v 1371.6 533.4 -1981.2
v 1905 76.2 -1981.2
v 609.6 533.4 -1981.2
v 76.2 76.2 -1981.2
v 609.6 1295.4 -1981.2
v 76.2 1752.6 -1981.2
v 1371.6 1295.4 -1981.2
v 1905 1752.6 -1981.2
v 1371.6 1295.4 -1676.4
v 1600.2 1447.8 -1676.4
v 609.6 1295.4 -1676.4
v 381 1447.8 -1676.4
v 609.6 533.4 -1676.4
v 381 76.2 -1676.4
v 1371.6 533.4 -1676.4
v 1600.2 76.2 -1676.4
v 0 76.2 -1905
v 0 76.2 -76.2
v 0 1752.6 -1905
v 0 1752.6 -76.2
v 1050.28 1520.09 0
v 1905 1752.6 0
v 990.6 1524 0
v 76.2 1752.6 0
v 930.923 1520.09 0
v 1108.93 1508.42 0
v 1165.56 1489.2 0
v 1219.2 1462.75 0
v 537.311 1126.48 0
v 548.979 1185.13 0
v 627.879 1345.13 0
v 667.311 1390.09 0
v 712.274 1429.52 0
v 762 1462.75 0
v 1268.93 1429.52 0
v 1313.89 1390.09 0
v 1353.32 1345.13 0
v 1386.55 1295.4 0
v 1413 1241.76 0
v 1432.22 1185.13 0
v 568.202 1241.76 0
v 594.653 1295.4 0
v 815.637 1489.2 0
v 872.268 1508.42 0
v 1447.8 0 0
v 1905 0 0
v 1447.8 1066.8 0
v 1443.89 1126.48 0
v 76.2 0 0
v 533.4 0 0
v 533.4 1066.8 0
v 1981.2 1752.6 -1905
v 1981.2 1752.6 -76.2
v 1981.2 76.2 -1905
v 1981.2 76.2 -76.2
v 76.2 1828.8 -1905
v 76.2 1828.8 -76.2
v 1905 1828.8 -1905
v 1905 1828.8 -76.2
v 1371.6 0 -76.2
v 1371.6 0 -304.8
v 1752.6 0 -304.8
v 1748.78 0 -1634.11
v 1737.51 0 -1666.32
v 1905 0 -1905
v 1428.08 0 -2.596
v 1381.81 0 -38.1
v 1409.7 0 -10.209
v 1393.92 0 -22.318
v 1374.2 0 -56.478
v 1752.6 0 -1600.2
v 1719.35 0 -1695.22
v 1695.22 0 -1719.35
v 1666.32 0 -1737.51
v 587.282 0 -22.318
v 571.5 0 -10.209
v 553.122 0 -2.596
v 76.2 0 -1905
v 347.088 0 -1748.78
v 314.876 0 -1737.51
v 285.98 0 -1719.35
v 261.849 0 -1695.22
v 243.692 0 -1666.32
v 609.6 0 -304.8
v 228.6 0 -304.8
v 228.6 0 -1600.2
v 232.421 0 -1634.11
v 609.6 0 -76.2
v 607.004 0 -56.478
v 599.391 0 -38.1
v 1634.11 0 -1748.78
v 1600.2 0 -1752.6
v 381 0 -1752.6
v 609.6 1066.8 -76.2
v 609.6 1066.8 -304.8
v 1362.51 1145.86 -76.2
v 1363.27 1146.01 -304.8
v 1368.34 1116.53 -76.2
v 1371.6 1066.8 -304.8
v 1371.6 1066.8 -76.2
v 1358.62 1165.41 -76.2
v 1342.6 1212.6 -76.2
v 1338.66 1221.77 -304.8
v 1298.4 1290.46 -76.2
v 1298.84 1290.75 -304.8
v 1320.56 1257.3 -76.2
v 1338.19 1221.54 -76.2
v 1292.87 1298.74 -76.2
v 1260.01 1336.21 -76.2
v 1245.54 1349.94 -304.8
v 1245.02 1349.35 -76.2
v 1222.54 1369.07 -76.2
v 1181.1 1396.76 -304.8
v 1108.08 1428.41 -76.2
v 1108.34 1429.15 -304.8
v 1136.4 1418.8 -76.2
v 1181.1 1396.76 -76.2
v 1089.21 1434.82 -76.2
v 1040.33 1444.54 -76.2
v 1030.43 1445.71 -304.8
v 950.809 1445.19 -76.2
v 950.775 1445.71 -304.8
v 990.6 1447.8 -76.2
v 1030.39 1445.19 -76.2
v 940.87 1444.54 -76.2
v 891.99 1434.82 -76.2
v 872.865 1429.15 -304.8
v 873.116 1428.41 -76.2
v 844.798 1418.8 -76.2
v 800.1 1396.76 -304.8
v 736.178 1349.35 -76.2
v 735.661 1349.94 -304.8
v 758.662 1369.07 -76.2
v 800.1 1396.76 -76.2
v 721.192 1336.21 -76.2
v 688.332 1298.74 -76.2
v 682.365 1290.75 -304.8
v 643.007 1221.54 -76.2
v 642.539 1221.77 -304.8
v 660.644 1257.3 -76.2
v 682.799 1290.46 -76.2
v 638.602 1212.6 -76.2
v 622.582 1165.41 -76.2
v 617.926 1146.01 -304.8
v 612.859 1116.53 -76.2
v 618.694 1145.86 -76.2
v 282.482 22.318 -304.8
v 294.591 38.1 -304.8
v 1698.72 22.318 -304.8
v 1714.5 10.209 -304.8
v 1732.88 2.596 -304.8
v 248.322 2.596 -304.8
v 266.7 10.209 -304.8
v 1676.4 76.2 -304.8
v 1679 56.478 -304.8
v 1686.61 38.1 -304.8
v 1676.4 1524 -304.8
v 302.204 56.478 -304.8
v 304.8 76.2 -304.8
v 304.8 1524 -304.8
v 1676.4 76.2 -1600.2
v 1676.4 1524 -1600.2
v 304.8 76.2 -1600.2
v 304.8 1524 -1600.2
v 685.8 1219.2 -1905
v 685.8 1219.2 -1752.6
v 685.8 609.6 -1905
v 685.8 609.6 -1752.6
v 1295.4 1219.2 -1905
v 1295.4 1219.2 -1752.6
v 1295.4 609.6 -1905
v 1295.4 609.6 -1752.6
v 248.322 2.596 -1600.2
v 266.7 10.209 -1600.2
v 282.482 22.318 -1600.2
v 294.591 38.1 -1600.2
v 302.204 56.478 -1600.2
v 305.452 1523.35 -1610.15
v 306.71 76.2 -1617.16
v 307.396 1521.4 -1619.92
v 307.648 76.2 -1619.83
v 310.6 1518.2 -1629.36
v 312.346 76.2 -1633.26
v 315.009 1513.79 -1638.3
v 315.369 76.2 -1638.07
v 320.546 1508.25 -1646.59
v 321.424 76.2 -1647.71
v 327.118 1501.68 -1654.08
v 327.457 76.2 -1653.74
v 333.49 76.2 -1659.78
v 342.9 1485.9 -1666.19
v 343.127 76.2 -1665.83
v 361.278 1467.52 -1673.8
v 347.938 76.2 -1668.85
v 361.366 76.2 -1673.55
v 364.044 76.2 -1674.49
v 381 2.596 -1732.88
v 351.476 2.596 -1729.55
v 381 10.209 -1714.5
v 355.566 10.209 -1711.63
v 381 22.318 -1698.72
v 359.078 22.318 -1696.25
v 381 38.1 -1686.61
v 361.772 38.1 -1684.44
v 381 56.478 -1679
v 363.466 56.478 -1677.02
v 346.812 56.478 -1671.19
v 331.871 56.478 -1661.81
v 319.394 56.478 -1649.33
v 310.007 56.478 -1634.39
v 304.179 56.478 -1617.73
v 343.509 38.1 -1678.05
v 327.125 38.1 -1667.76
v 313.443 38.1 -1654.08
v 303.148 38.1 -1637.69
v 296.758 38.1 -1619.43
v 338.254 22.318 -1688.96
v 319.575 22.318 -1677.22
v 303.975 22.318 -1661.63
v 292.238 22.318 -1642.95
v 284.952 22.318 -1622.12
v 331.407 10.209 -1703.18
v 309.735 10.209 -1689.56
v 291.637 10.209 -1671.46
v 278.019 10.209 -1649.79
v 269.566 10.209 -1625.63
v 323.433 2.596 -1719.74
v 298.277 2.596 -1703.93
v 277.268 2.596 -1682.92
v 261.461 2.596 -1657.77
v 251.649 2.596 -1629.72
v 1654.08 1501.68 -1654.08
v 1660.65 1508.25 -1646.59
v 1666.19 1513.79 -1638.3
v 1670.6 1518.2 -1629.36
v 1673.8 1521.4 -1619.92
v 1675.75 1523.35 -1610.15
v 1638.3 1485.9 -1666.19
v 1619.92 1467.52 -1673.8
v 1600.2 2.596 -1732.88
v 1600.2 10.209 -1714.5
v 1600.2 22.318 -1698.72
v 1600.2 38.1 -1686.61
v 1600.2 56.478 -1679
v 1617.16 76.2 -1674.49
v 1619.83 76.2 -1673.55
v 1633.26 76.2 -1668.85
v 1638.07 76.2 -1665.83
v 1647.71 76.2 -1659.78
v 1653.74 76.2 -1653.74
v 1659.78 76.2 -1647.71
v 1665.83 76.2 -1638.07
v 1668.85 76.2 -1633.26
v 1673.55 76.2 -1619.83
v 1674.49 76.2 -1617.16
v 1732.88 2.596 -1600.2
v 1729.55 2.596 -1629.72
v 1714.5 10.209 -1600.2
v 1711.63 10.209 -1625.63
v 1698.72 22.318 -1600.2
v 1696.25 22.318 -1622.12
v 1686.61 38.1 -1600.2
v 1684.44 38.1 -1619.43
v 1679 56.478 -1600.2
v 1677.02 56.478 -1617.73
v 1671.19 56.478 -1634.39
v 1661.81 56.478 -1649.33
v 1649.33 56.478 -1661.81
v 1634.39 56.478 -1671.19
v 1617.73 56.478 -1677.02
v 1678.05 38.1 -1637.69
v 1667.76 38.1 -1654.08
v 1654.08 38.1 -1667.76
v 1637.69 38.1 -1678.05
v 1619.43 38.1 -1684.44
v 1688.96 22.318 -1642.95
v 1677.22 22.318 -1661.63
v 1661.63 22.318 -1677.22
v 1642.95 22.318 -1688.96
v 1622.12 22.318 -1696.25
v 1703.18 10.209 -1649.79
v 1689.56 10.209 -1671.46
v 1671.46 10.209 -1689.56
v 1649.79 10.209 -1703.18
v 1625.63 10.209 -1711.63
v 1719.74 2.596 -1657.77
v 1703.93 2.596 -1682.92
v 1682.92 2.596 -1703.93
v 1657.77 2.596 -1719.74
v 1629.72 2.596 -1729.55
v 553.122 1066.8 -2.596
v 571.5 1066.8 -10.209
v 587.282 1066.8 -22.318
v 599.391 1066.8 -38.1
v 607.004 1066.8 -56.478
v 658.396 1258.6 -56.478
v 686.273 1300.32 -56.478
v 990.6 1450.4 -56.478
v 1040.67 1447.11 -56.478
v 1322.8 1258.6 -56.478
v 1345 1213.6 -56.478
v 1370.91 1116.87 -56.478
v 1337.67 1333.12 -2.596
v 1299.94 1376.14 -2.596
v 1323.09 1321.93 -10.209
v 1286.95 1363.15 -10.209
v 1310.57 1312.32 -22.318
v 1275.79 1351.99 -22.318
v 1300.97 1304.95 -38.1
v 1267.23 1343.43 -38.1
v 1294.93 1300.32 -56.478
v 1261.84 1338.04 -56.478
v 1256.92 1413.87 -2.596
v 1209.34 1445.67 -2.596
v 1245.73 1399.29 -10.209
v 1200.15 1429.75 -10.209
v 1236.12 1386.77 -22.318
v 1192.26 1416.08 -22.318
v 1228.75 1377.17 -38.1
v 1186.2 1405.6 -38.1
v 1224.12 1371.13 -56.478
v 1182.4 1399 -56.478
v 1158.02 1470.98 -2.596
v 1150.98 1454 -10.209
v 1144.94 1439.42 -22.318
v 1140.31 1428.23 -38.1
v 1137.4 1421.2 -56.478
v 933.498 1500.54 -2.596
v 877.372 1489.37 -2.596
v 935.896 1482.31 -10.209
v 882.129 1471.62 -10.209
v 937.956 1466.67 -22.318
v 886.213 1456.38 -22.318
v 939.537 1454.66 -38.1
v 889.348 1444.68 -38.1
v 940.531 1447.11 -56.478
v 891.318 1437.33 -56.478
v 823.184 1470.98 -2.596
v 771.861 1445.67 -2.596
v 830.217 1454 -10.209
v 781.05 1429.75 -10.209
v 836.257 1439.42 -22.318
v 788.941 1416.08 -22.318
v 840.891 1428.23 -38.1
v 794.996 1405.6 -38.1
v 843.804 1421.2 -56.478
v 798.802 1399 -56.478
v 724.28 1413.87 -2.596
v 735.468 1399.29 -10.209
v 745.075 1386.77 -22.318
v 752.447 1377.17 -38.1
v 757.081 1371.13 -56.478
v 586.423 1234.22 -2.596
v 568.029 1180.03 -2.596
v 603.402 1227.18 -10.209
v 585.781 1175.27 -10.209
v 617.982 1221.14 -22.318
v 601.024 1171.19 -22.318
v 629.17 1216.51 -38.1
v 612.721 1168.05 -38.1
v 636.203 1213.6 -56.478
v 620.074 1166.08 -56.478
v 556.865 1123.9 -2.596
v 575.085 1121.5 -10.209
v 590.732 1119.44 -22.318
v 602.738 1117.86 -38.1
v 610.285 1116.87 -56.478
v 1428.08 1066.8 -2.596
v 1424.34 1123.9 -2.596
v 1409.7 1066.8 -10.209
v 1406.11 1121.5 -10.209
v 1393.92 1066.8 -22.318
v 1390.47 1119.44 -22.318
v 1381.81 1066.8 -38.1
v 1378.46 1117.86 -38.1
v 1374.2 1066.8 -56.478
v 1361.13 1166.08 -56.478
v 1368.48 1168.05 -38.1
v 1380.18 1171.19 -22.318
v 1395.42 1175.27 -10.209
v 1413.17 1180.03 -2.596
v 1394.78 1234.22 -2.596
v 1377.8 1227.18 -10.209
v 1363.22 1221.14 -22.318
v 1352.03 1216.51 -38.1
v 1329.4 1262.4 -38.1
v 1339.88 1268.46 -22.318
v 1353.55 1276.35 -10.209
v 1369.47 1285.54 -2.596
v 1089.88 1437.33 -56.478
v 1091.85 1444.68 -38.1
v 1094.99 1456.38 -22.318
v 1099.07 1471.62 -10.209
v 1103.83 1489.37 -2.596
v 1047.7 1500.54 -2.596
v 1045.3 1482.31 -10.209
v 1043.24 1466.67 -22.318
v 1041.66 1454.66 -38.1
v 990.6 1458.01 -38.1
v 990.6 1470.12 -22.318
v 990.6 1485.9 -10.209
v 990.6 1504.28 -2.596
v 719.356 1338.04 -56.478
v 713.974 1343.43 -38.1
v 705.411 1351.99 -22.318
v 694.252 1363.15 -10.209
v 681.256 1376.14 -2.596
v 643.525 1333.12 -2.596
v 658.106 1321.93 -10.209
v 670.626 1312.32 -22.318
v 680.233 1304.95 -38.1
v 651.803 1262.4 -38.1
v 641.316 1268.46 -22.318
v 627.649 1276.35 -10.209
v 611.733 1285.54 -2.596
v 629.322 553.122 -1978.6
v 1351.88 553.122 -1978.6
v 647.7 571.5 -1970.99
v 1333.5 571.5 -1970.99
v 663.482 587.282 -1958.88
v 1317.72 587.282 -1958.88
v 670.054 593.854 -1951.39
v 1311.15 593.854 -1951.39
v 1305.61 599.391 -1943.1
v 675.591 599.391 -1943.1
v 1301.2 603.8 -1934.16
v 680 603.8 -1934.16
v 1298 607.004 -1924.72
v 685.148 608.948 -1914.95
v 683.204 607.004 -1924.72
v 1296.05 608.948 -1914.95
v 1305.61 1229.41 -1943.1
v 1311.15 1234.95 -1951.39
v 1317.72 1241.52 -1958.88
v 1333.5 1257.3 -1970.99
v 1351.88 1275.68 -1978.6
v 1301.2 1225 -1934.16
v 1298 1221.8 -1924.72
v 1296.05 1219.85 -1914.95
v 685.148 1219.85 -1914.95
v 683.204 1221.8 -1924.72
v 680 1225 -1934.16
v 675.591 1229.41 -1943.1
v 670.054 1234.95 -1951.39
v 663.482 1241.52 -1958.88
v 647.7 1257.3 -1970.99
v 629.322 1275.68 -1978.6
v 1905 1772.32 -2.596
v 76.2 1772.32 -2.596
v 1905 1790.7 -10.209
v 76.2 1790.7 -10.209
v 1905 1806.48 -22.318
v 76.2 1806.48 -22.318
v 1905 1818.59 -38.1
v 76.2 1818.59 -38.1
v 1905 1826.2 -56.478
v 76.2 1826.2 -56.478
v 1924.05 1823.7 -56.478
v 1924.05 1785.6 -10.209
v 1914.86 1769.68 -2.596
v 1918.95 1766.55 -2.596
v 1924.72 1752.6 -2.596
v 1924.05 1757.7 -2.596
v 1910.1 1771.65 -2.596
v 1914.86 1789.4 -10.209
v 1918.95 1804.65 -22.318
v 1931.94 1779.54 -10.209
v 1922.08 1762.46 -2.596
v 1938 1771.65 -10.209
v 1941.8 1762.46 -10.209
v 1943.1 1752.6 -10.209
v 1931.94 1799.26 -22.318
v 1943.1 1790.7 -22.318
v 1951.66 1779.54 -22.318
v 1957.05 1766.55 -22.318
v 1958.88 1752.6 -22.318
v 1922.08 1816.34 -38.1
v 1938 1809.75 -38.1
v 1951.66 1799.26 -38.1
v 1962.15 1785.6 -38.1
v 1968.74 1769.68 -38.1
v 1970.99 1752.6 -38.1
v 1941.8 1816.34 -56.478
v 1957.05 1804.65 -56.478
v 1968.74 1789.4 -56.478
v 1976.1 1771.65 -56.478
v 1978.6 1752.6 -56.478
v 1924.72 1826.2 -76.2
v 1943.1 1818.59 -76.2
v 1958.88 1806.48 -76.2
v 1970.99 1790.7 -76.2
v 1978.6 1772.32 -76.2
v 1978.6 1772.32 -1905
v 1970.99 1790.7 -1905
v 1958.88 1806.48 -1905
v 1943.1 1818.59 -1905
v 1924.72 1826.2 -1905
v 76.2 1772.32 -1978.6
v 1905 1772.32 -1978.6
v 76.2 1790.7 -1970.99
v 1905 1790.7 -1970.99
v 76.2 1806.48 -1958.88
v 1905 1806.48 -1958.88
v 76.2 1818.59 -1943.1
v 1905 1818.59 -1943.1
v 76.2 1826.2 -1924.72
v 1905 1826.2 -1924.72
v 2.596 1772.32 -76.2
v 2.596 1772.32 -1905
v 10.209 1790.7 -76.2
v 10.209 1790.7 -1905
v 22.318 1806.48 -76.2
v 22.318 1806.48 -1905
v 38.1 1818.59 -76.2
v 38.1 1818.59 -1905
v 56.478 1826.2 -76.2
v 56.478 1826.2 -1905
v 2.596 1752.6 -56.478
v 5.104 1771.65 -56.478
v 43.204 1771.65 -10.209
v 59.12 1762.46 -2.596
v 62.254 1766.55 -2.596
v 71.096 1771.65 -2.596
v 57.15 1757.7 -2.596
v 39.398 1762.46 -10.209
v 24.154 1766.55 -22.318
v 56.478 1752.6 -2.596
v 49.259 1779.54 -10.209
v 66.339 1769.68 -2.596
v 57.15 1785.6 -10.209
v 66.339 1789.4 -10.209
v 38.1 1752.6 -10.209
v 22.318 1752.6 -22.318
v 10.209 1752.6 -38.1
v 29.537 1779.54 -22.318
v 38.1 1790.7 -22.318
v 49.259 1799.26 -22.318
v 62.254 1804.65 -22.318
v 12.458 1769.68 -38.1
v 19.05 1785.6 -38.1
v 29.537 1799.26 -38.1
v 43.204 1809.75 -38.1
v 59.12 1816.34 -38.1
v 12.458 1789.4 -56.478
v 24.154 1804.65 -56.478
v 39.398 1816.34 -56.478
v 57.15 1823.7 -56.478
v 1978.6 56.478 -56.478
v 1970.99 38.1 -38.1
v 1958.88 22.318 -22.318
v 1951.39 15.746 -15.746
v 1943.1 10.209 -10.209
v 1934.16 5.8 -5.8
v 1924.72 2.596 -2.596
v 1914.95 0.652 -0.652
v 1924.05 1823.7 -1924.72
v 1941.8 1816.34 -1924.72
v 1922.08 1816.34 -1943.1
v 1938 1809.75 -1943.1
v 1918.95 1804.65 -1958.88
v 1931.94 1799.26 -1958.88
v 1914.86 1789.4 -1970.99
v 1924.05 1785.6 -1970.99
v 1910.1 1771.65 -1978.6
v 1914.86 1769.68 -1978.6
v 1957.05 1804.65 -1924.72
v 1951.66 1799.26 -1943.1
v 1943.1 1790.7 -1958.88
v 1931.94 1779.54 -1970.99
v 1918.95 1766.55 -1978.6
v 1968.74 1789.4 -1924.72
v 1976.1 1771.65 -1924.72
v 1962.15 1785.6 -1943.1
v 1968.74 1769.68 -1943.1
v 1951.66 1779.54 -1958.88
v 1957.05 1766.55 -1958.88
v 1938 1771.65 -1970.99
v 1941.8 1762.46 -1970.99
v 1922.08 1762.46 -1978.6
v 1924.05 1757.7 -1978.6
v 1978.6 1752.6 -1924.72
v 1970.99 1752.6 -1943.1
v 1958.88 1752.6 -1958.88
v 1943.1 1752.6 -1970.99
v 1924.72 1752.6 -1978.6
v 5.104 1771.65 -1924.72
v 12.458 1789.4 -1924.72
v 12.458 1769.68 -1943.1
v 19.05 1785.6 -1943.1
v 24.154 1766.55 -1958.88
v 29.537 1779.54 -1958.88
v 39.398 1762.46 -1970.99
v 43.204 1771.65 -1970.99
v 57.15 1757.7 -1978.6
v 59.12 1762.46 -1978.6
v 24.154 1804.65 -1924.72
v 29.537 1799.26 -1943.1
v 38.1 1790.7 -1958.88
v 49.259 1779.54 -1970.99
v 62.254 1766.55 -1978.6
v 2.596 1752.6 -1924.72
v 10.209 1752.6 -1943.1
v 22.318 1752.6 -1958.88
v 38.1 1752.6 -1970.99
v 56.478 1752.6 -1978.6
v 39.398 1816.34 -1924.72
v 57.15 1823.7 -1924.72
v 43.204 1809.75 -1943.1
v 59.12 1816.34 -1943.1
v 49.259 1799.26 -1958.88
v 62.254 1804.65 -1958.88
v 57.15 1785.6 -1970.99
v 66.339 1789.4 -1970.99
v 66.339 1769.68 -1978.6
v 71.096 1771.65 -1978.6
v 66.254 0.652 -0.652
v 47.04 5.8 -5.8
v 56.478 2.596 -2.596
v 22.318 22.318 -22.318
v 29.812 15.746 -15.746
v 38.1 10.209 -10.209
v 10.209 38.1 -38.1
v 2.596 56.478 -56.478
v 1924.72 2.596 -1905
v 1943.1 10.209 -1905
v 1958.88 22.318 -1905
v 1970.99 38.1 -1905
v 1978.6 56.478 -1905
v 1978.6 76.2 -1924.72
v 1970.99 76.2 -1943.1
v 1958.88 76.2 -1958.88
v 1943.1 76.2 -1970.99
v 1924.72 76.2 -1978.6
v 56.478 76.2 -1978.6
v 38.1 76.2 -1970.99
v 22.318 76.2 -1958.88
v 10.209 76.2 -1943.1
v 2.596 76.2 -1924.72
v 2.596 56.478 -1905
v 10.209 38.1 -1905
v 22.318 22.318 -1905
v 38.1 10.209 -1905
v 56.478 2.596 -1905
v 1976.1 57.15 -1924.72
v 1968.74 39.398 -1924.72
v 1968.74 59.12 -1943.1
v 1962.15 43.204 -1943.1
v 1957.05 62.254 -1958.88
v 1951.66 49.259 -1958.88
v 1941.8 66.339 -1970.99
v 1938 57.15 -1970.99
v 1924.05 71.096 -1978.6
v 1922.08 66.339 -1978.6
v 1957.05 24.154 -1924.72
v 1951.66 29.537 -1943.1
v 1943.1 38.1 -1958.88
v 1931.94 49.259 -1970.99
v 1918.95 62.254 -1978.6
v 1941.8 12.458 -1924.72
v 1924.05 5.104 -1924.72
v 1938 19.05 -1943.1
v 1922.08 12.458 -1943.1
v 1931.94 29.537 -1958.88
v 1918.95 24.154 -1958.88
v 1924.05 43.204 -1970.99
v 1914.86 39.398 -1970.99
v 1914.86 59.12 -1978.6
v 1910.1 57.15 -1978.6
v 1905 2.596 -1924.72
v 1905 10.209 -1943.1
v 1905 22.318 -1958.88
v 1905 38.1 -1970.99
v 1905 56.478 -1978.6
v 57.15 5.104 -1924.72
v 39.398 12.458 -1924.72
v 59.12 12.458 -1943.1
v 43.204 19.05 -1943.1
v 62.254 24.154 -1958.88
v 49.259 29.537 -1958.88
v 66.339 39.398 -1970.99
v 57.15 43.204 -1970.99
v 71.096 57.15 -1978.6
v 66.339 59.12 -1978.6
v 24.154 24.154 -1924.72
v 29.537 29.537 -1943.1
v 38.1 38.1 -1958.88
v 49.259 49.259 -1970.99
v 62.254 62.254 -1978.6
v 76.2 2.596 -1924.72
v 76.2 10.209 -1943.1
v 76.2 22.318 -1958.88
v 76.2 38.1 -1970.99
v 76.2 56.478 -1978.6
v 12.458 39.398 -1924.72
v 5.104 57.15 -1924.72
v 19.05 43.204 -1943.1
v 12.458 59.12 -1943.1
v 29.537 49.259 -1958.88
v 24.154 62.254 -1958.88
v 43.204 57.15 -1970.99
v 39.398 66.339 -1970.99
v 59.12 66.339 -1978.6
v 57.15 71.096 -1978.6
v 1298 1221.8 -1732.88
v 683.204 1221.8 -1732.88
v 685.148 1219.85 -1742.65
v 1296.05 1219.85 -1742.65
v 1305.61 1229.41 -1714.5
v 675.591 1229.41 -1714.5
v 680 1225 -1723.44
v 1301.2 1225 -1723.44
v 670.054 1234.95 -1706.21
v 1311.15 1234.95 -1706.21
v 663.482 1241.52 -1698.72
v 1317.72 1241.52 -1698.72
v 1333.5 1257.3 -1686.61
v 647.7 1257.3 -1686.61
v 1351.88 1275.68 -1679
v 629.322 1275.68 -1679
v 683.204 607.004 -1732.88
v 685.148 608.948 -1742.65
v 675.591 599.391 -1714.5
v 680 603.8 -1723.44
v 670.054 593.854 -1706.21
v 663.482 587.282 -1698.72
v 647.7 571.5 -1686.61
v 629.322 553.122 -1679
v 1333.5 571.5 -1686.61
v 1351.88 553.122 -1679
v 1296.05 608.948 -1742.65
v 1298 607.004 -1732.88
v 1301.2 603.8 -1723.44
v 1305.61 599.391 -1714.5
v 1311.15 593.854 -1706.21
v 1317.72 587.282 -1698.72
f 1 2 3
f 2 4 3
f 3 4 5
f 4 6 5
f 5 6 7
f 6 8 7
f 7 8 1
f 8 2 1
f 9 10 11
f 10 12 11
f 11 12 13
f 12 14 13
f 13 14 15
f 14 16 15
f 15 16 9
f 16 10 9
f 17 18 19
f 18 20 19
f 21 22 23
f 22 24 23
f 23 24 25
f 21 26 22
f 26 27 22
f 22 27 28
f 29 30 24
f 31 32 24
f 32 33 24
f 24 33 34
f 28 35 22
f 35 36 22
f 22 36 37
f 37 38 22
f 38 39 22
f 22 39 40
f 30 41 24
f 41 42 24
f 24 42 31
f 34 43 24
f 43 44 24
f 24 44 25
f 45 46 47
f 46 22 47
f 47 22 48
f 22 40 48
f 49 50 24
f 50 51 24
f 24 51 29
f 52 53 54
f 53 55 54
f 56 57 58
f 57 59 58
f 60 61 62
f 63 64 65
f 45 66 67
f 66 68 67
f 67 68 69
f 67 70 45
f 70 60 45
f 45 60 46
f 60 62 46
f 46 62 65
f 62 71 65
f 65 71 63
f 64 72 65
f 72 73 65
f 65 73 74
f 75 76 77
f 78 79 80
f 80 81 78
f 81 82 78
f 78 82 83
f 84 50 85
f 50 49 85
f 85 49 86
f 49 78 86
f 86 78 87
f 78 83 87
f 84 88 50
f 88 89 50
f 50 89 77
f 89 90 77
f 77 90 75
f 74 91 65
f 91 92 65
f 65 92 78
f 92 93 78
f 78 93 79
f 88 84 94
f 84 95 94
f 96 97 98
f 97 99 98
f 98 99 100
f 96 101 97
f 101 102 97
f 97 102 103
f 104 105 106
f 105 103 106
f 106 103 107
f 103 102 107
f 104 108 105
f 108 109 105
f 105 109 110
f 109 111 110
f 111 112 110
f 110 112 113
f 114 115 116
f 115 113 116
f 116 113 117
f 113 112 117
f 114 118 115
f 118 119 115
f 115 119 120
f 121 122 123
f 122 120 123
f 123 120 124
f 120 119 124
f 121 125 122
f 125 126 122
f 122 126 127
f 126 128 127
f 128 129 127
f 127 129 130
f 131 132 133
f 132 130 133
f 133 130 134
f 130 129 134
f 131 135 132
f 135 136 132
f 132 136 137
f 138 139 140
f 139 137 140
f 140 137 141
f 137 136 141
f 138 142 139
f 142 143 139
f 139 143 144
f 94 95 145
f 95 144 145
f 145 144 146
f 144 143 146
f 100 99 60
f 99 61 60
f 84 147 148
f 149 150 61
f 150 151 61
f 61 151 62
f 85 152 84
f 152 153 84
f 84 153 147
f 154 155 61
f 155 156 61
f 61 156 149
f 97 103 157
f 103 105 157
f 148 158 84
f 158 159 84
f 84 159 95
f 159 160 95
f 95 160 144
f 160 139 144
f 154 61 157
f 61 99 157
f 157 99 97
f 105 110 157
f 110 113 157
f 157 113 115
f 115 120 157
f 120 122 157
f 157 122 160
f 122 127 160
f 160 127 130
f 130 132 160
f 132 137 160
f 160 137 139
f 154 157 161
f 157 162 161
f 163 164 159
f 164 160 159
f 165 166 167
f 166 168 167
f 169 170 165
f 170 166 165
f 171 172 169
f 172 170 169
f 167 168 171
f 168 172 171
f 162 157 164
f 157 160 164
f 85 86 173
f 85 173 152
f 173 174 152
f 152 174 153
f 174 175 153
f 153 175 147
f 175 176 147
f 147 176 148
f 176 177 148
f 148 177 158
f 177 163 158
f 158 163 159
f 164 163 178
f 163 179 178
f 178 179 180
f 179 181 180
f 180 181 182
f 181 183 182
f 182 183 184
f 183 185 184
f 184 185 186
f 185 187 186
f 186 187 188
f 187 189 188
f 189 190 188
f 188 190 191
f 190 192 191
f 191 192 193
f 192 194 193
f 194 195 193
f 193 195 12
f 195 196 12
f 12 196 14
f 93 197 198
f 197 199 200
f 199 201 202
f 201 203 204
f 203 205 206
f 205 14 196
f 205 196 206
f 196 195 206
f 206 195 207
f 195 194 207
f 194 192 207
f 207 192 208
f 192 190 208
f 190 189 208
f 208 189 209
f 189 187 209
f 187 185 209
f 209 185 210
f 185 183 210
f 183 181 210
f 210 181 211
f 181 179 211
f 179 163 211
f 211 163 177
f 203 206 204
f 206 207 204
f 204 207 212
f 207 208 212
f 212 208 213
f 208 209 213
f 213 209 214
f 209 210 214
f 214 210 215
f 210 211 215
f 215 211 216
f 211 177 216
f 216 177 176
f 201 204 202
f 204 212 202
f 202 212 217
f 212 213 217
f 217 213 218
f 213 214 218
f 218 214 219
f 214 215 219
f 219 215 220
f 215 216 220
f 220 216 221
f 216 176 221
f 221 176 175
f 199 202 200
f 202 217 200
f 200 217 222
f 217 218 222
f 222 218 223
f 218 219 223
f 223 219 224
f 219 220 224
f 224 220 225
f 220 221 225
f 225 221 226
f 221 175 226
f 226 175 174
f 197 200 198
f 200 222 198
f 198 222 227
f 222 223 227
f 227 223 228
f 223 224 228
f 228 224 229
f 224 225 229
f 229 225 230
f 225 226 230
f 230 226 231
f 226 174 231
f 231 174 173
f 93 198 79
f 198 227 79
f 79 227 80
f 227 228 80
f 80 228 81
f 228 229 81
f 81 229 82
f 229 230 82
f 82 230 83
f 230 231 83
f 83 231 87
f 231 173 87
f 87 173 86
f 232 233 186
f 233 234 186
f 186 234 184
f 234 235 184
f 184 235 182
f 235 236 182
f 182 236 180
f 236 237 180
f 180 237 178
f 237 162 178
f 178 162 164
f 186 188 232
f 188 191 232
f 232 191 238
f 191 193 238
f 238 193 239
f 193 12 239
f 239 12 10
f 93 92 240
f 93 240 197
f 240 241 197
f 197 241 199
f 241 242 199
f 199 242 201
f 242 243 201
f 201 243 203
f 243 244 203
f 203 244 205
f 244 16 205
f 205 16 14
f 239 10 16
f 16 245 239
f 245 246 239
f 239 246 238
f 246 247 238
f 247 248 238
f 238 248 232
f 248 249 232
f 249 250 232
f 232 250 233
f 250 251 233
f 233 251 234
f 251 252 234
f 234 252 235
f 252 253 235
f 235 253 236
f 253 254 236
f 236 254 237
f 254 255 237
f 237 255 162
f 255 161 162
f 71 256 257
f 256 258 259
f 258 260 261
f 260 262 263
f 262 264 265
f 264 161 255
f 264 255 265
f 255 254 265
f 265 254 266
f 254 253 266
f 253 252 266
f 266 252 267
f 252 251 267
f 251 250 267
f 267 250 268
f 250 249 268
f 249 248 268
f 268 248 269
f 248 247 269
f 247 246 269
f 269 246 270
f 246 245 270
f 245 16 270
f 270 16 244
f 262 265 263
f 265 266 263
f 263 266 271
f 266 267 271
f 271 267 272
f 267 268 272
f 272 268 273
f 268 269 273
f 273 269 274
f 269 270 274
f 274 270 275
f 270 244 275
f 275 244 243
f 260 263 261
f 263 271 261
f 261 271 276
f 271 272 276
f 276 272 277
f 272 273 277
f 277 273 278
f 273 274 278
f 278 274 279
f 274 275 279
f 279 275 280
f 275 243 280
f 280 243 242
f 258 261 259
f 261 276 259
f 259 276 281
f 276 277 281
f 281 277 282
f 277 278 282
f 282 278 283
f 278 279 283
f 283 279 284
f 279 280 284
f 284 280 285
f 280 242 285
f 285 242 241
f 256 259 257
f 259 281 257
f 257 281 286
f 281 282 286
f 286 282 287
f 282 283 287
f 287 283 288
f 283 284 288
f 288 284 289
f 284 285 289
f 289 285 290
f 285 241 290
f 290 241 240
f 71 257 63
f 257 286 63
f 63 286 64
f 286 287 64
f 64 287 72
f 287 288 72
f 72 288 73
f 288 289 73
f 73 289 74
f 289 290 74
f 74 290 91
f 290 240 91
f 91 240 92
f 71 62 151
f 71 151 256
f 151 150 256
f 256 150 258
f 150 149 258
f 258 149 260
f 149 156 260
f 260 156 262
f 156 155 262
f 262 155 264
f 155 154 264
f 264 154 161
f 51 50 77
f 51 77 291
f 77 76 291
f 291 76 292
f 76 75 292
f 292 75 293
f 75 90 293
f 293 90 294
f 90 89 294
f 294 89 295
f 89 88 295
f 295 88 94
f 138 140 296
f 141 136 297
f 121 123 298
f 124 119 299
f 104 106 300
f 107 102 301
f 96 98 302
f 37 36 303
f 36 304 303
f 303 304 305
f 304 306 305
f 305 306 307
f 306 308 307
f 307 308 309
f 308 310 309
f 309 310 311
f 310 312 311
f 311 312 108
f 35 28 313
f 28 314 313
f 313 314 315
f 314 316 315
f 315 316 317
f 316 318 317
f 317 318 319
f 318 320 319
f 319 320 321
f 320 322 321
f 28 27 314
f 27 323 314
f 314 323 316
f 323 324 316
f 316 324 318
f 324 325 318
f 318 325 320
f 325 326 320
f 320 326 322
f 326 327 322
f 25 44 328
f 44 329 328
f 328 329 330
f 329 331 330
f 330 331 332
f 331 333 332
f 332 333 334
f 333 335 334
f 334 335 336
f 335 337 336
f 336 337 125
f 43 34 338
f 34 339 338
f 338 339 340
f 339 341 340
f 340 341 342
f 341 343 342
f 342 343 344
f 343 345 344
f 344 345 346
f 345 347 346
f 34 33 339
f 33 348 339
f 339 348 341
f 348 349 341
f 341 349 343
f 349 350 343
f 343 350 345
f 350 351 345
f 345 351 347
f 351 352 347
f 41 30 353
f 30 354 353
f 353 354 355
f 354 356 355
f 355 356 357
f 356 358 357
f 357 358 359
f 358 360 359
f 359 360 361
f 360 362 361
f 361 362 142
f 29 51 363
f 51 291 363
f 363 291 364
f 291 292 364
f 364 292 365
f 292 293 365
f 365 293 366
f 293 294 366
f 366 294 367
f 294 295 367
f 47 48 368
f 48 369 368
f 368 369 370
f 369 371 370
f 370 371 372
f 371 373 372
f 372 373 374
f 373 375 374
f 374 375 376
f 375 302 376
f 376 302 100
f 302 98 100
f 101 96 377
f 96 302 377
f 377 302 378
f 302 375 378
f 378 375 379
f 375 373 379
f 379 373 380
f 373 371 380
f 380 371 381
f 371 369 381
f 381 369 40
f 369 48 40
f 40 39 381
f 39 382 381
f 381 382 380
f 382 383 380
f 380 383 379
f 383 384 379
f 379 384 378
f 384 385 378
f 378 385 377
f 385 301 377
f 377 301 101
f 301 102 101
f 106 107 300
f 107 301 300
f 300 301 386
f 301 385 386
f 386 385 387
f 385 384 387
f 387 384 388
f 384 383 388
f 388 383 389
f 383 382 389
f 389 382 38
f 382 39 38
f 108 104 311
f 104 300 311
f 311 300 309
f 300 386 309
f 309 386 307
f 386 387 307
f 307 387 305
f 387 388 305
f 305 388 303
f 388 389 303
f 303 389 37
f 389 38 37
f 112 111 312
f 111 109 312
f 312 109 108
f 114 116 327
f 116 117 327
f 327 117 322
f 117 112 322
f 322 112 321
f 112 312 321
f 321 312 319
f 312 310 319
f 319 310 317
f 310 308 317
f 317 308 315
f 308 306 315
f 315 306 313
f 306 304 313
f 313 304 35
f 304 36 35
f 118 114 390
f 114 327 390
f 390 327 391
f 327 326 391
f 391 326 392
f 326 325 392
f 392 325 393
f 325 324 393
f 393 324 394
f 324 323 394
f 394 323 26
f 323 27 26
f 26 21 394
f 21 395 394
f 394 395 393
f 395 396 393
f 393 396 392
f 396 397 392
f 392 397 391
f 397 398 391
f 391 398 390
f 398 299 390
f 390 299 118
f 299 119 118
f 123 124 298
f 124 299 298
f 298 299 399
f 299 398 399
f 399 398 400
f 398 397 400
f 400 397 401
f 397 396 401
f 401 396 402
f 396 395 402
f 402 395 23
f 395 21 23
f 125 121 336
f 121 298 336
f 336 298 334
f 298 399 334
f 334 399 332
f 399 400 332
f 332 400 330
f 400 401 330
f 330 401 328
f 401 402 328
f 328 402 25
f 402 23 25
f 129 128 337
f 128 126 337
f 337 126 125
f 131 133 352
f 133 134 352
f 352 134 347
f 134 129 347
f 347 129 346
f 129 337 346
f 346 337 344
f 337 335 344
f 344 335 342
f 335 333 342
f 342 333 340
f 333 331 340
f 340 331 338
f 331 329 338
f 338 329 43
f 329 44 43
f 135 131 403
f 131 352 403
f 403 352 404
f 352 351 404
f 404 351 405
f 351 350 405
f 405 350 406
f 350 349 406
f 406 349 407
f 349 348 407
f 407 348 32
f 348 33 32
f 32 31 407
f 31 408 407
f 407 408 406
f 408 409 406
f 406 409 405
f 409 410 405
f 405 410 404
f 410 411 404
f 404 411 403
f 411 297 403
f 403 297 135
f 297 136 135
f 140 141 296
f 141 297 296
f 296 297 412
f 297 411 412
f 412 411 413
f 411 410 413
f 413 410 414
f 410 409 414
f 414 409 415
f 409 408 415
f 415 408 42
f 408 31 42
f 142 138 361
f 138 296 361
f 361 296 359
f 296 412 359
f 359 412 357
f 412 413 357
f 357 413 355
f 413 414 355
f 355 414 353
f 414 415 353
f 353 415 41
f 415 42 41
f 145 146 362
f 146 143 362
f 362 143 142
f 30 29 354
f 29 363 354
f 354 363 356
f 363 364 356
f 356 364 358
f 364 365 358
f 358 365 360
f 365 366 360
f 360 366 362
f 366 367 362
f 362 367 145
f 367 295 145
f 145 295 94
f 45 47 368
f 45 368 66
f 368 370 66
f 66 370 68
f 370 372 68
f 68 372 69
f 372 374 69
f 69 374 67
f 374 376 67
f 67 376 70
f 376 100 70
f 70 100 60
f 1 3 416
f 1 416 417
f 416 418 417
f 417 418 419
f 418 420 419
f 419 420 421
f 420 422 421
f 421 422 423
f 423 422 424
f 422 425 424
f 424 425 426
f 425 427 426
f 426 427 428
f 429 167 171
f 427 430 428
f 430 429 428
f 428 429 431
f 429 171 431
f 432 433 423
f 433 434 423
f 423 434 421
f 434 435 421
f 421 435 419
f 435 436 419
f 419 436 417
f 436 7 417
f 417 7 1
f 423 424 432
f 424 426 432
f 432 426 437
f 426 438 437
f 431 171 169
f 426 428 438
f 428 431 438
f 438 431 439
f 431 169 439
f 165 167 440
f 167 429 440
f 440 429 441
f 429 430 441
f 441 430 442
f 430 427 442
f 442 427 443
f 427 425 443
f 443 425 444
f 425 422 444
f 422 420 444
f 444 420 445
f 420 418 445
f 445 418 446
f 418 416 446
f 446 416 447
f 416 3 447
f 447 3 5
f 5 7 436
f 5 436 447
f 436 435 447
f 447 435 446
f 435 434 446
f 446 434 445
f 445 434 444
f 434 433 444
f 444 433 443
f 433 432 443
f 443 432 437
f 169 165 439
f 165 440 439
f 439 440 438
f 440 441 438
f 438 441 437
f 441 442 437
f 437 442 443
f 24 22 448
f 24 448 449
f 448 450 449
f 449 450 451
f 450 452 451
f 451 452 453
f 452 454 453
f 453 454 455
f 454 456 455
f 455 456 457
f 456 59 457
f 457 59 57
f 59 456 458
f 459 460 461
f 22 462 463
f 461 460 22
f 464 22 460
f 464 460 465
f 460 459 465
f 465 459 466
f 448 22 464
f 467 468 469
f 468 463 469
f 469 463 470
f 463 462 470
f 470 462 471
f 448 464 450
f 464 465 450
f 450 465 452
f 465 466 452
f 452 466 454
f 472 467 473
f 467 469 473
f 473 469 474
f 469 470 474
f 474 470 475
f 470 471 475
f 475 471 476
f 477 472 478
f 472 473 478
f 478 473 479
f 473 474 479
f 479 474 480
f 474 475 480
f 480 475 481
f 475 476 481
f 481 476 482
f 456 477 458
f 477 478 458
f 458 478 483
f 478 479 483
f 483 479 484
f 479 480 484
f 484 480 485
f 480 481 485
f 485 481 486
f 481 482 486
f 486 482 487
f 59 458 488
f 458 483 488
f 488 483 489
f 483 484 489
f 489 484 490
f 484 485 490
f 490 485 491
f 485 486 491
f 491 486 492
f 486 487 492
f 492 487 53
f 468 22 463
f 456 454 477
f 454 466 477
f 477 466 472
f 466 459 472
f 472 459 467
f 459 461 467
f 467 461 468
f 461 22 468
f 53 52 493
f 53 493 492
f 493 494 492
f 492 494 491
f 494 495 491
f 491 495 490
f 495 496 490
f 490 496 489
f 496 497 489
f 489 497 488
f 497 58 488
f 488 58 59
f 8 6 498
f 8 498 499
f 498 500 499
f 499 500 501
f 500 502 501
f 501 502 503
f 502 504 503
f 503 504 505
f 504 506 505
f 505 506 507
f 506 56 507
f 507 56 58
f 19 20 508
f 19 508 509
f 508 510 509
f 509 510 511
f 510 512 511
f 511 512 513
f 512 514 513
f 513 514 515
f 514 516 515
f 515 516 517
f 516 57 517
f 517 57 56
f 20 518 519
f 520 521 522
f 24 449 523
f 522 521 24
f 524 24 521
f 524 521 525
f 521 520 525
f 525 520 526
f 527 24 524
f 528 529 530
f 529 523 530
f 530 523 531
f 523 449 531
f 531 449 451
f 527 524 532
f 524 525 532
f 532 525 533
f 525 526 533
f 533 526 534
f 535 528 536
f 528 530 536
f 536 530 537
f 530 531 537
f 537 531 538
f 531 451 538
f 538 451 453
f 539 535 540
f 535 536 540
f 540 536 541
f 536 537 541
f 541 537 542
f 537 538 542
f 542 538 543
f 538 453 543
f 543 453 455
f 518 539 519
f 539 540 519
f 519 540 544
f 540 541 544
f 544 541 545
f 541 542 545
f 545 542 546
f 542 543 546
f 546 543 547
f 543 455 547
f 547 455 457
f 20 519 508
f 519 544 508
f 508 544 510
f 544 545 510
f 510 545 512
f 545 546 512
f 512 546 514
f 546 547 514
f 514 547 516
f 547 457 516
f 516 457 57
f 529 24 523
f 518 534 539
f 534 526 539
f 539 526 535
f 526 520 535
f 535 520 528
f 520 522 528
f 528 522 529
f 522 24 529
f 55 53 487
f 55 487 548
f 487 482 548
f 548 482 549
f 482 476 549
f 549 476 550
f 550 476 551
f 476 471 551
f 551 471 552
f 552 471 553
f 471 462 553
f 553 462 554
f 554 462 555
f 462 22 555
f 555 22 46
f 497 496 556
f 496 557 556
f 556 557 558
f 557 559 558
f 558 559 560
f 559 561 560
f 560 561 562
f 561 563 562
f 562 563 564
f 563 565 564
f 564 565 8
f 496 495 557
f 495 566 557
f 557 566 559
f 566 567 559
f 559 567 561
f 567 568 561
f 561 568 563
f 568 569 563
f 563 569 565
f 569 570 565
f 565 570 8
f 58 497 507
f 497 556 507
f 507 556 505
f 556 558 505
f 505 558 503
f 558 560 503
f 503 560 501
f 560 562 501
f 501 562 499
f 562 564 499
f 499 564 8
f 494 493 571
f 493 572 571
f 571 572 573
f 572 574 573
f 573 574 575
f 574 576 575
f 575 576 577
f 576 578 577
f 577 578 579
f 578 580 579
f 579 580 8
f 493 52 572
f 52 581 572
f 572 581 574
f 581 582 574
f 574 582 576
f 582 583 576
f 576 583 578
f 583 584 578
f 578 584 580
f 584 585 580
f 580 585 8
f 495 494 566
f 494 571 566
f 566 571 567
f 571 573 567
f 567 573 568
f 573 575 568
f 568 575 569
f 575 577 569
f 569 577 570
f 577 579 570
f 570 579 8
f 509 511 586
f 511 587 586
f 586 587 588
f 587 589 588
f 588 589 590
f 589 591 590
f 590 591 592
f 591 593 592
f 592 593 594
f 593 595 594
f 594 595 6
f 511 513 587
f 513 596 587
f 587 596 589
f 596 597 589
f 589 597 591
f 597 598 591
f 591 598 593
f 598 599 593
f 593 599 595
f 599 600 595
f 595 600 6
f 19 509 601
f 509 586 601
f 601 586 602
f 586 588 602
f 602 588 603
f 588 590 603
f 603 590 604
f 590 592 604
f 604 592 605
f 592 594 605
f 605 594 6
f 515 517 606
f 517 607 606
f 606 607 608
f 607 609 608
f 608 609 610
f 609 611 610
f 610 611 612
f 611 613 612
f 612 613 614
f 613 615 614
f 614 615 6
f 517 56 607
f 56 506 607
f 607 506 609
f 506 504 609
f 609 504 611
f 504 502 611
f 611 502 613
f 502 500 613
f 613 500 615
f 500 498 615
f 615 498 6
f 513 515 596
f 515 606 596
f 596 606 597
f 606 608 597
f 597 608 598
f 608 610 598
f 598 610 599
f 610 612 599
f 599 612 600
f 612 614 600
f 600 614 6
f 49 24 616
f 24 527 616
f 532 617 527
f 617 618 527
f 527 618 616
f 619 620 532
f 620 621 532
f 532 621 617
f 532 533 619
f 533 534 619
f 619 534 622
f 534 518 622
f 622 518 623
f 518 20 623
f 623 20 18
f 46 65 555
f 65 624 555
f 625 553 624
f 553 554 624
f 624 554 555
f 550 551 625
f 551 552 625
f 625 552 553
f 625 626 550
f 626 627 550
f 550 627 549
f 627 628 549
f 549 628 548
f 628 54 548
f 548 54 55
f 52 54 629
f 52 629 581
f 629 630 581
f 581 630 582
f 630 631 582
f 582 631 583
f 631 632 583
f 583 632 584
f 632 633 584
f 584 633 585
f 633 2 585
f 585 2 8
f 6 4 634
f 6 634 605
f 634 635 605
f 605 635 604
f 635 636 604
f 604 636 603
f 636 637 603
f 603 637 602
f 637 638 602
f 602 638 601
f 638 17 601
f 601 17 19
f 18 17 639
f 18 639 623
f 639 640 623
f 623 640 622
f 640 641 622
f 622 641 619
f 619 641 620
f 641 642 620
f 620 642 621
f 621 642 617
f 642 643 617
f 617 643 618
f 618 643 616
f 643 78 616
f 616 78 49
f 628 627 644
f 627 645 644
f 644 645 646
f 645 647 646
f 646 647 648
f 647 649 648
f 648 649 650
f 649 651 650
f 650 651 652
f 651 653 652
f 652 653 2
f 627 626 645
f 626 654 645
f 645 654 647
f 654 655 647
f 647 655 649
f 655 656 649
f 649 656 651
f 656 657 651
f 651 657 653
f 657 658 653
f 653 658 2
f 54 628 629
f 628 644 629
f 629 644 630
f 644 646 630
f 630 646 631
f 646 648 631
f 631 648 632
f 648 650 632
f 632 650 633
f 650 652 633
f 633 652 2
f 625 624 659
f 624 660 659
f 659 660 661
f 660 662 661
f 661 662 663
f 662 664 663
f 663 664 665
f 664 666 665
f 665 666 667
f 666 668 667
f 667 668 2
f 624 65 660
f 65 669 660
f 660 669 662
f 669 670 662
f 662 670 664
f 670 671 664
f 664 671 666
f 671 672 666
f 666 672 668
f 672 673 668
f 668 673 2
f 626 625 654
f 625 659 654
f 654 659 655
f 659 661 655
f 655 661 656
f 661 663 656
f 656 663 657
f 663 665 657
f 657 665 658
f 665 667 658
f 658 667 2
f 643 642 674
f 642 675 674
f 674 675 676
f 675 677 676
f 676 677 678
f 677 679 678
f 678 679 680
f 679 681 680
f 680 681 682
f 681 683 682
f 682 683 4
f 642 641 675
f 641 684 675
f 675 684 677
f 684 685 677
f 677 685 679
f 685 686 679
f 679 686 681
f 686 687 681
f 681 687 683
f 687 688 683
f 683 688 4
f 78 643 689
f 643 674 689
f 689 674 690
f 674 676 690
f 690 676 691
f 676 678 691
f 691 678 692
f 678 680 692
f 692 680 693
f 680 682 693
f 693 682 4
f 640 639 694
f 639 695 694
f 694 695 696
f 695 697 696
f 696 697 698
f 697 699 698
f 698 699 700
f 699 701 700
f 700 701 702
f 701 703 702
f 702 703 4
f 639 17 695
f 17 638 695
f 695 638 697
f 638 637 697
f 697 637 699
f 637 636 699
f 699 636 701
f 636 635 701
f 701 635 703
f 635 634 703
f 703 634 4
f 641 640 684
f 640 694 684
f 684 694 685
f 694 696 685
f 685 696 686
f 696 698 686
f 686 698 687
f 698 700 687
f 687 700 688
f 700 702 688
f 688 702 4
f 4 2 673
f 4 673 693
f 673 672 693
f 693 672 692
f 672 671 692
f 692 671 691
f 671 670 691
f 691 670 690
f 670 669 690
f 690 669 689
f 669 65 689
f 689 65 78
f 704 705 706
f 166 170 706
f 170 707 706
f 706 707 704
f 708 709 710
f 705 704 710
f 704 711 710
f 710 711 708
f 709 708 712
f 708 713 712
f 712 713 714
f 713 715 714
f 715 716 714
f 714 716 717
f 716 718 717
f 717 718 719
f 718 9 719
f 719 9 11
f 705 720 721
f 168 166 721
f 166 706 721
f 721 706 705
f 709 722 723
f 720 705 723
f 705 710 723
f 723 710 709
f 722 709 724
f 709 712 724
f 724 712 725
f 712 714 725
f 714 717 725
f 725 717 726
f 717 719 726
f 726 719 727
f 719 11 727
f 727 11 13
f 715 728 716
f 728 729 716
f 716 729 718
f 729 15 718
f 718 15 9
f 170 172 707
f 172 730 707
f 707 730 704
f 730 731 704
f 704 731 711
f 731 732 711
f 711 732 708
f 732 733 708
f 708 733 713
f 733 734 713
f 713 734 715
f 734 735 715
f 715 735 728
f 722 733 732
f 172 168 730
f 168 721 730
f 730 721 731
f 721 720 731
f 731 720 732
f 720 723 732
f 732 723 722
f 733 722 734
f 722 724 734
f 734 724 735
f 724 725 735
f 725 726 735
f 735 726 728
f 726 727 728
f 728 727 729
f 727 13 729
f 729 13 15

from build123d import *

# Parameters (mm, degrees)
SKETCH1_W           = 1981.2
SKETCH1_H           = 1981.2
BOSS_EXTRUDE1_DEPTH = 1828.8
CUT_EXTRUDE1_DEPTH  = 1371.6
SKETCH3_W           = 1371.6
SKETCH3_H           = 1371.6
CUT_EXTRUDE2_DEPTH  = 3346.865556175
SKETCH4_W           = 609.6
SKETCH4_H           = 609.6
CUT_EXTRUDE3_DEPTH  = 304.8
SKETCH5_W           = 1981.2
SKETCH5_H           = 304.8
BOSS_EXTRUDE2_DEPTH = 1676.4
FILLET1_R           = 76.2


with BuildPart() as part:
    # Sketch1 → Boss-Extrude1 (new body)
    with BuildSketch(Plane(origin=(0, 0, 0), x_dir=(1, 0, 0), z_dir=(0, 1, 0))):
        with Locations((990.6, 990.6)):
            Rectangle(SKETCH1_W, SKETCH1_H)
    extrude(amount=BOSS_EXTRUDE1_DEPTH)

    # Sketch2 → Cut-Extrude1 (cut)
    with BuildSketch(Plane.XY):
        with BuildLine():
            Line((609.6, 0), (1371.6, 0))
            Line((1371.6, 0), (1371.6, 1066.8))
            ThreePointArc((1371.6, 1066.8), (990.6, 1447.8), (609.6, 1066.8))
            Line((609.6, 1066.8), (609.6, 0))
        make_face()
    extrude(amount=-CUT_EXTRUDE1_DEPTH, mode=Mode.SUBTRACT)

    # Sketch3 → Cut-Extrude2 (cut, through all)
    with BuildSketch(Plane(origin=(0, 1828.8, 0), x_dir=(1, 0, 0), z_dir=(0, 1, 0))):
        with Locations((990.6, 990.6)):
            Rectangle(SKETCH3_W, SKETCH3_H)
    extrude(amount=-CUT_EXTRUDE2_DEPTH, mode=Mode.SUBTRACT)

    # Sketch4 → Cut-Extrude3 (cut)
    with BuildSketch(Plane(origin=(0, 0, -1981.2), x_dir=(-1, 0, 0), z_dir=(0, 0, -1))):
        with Locations((-990.6, 914.4)):
            Rectangle(SKETCH4_W, SKETCH4_H)
    extrude(amount=-CUT_EXTRUDE3_DEPTH, mode=Mode.SUBTRACT)

    # Sketch5 → Boss-Extrude2 (add)
    with BuildSketch(Plane(origin=(1981.2, 0, 0), x_dir=(0, 0, -1), z_dir=(1, 0, 0))):
        with Locations((990.6, 1676.4)):
            Rectangle(SKETCH5_W, SKETCH5_H)
    extrude(amount=-BOSS_EXTRUDE2_DEPTH)

    # Fillet1
    fillet1_edges = [part.edges().sort_by_distance(p)[0] for p in [
        (1981.2, 1828.8, -990.6),
        (990.6, 1828.8, -1981.2),
        (609.6, 533.4, 0),
        (1371.6, 533.4, 0),
        (990.6, 1447.8, 0),
        (990.6, 0, -1676.4),
        (304.8, 762, -1676.4),
        (1676.4, 0, -990.6),
        (1676.4, 762, -1676.4),
        (304.8, 0, -990.6),
        (0, 1828.8, -990.6),
        (990.6, 0, -1981.2),
        (1981.2, 0, -990.6),
        (990.6, 609.6, -1981.2),
        (1295.4, 914.4, -1981.2),
        (685.8, 914.4, -1676.4),
        (685.8, 914.4, -1981.2),
        (990.6, 1219.2, -1676.4),
        (990.6, 1219.2, -1981.2),
        (990.6, 609.6, -1676.4),
        (1295.4, 914.4, -1676.4),
        (0, 0, -990.6),
        (990.6, 1828.8, 0),
        (990.6, 1524, -1676.4),
        (0, 914.4, -1981.2),
        (1981.2, 914.4, -1981.2),
        (1981.2, 914.4, 0),
        (0, 914.4, 0),
    ]]
    fillet(fillet1_edges, radius=FILLET1_R)


solid = part.part
